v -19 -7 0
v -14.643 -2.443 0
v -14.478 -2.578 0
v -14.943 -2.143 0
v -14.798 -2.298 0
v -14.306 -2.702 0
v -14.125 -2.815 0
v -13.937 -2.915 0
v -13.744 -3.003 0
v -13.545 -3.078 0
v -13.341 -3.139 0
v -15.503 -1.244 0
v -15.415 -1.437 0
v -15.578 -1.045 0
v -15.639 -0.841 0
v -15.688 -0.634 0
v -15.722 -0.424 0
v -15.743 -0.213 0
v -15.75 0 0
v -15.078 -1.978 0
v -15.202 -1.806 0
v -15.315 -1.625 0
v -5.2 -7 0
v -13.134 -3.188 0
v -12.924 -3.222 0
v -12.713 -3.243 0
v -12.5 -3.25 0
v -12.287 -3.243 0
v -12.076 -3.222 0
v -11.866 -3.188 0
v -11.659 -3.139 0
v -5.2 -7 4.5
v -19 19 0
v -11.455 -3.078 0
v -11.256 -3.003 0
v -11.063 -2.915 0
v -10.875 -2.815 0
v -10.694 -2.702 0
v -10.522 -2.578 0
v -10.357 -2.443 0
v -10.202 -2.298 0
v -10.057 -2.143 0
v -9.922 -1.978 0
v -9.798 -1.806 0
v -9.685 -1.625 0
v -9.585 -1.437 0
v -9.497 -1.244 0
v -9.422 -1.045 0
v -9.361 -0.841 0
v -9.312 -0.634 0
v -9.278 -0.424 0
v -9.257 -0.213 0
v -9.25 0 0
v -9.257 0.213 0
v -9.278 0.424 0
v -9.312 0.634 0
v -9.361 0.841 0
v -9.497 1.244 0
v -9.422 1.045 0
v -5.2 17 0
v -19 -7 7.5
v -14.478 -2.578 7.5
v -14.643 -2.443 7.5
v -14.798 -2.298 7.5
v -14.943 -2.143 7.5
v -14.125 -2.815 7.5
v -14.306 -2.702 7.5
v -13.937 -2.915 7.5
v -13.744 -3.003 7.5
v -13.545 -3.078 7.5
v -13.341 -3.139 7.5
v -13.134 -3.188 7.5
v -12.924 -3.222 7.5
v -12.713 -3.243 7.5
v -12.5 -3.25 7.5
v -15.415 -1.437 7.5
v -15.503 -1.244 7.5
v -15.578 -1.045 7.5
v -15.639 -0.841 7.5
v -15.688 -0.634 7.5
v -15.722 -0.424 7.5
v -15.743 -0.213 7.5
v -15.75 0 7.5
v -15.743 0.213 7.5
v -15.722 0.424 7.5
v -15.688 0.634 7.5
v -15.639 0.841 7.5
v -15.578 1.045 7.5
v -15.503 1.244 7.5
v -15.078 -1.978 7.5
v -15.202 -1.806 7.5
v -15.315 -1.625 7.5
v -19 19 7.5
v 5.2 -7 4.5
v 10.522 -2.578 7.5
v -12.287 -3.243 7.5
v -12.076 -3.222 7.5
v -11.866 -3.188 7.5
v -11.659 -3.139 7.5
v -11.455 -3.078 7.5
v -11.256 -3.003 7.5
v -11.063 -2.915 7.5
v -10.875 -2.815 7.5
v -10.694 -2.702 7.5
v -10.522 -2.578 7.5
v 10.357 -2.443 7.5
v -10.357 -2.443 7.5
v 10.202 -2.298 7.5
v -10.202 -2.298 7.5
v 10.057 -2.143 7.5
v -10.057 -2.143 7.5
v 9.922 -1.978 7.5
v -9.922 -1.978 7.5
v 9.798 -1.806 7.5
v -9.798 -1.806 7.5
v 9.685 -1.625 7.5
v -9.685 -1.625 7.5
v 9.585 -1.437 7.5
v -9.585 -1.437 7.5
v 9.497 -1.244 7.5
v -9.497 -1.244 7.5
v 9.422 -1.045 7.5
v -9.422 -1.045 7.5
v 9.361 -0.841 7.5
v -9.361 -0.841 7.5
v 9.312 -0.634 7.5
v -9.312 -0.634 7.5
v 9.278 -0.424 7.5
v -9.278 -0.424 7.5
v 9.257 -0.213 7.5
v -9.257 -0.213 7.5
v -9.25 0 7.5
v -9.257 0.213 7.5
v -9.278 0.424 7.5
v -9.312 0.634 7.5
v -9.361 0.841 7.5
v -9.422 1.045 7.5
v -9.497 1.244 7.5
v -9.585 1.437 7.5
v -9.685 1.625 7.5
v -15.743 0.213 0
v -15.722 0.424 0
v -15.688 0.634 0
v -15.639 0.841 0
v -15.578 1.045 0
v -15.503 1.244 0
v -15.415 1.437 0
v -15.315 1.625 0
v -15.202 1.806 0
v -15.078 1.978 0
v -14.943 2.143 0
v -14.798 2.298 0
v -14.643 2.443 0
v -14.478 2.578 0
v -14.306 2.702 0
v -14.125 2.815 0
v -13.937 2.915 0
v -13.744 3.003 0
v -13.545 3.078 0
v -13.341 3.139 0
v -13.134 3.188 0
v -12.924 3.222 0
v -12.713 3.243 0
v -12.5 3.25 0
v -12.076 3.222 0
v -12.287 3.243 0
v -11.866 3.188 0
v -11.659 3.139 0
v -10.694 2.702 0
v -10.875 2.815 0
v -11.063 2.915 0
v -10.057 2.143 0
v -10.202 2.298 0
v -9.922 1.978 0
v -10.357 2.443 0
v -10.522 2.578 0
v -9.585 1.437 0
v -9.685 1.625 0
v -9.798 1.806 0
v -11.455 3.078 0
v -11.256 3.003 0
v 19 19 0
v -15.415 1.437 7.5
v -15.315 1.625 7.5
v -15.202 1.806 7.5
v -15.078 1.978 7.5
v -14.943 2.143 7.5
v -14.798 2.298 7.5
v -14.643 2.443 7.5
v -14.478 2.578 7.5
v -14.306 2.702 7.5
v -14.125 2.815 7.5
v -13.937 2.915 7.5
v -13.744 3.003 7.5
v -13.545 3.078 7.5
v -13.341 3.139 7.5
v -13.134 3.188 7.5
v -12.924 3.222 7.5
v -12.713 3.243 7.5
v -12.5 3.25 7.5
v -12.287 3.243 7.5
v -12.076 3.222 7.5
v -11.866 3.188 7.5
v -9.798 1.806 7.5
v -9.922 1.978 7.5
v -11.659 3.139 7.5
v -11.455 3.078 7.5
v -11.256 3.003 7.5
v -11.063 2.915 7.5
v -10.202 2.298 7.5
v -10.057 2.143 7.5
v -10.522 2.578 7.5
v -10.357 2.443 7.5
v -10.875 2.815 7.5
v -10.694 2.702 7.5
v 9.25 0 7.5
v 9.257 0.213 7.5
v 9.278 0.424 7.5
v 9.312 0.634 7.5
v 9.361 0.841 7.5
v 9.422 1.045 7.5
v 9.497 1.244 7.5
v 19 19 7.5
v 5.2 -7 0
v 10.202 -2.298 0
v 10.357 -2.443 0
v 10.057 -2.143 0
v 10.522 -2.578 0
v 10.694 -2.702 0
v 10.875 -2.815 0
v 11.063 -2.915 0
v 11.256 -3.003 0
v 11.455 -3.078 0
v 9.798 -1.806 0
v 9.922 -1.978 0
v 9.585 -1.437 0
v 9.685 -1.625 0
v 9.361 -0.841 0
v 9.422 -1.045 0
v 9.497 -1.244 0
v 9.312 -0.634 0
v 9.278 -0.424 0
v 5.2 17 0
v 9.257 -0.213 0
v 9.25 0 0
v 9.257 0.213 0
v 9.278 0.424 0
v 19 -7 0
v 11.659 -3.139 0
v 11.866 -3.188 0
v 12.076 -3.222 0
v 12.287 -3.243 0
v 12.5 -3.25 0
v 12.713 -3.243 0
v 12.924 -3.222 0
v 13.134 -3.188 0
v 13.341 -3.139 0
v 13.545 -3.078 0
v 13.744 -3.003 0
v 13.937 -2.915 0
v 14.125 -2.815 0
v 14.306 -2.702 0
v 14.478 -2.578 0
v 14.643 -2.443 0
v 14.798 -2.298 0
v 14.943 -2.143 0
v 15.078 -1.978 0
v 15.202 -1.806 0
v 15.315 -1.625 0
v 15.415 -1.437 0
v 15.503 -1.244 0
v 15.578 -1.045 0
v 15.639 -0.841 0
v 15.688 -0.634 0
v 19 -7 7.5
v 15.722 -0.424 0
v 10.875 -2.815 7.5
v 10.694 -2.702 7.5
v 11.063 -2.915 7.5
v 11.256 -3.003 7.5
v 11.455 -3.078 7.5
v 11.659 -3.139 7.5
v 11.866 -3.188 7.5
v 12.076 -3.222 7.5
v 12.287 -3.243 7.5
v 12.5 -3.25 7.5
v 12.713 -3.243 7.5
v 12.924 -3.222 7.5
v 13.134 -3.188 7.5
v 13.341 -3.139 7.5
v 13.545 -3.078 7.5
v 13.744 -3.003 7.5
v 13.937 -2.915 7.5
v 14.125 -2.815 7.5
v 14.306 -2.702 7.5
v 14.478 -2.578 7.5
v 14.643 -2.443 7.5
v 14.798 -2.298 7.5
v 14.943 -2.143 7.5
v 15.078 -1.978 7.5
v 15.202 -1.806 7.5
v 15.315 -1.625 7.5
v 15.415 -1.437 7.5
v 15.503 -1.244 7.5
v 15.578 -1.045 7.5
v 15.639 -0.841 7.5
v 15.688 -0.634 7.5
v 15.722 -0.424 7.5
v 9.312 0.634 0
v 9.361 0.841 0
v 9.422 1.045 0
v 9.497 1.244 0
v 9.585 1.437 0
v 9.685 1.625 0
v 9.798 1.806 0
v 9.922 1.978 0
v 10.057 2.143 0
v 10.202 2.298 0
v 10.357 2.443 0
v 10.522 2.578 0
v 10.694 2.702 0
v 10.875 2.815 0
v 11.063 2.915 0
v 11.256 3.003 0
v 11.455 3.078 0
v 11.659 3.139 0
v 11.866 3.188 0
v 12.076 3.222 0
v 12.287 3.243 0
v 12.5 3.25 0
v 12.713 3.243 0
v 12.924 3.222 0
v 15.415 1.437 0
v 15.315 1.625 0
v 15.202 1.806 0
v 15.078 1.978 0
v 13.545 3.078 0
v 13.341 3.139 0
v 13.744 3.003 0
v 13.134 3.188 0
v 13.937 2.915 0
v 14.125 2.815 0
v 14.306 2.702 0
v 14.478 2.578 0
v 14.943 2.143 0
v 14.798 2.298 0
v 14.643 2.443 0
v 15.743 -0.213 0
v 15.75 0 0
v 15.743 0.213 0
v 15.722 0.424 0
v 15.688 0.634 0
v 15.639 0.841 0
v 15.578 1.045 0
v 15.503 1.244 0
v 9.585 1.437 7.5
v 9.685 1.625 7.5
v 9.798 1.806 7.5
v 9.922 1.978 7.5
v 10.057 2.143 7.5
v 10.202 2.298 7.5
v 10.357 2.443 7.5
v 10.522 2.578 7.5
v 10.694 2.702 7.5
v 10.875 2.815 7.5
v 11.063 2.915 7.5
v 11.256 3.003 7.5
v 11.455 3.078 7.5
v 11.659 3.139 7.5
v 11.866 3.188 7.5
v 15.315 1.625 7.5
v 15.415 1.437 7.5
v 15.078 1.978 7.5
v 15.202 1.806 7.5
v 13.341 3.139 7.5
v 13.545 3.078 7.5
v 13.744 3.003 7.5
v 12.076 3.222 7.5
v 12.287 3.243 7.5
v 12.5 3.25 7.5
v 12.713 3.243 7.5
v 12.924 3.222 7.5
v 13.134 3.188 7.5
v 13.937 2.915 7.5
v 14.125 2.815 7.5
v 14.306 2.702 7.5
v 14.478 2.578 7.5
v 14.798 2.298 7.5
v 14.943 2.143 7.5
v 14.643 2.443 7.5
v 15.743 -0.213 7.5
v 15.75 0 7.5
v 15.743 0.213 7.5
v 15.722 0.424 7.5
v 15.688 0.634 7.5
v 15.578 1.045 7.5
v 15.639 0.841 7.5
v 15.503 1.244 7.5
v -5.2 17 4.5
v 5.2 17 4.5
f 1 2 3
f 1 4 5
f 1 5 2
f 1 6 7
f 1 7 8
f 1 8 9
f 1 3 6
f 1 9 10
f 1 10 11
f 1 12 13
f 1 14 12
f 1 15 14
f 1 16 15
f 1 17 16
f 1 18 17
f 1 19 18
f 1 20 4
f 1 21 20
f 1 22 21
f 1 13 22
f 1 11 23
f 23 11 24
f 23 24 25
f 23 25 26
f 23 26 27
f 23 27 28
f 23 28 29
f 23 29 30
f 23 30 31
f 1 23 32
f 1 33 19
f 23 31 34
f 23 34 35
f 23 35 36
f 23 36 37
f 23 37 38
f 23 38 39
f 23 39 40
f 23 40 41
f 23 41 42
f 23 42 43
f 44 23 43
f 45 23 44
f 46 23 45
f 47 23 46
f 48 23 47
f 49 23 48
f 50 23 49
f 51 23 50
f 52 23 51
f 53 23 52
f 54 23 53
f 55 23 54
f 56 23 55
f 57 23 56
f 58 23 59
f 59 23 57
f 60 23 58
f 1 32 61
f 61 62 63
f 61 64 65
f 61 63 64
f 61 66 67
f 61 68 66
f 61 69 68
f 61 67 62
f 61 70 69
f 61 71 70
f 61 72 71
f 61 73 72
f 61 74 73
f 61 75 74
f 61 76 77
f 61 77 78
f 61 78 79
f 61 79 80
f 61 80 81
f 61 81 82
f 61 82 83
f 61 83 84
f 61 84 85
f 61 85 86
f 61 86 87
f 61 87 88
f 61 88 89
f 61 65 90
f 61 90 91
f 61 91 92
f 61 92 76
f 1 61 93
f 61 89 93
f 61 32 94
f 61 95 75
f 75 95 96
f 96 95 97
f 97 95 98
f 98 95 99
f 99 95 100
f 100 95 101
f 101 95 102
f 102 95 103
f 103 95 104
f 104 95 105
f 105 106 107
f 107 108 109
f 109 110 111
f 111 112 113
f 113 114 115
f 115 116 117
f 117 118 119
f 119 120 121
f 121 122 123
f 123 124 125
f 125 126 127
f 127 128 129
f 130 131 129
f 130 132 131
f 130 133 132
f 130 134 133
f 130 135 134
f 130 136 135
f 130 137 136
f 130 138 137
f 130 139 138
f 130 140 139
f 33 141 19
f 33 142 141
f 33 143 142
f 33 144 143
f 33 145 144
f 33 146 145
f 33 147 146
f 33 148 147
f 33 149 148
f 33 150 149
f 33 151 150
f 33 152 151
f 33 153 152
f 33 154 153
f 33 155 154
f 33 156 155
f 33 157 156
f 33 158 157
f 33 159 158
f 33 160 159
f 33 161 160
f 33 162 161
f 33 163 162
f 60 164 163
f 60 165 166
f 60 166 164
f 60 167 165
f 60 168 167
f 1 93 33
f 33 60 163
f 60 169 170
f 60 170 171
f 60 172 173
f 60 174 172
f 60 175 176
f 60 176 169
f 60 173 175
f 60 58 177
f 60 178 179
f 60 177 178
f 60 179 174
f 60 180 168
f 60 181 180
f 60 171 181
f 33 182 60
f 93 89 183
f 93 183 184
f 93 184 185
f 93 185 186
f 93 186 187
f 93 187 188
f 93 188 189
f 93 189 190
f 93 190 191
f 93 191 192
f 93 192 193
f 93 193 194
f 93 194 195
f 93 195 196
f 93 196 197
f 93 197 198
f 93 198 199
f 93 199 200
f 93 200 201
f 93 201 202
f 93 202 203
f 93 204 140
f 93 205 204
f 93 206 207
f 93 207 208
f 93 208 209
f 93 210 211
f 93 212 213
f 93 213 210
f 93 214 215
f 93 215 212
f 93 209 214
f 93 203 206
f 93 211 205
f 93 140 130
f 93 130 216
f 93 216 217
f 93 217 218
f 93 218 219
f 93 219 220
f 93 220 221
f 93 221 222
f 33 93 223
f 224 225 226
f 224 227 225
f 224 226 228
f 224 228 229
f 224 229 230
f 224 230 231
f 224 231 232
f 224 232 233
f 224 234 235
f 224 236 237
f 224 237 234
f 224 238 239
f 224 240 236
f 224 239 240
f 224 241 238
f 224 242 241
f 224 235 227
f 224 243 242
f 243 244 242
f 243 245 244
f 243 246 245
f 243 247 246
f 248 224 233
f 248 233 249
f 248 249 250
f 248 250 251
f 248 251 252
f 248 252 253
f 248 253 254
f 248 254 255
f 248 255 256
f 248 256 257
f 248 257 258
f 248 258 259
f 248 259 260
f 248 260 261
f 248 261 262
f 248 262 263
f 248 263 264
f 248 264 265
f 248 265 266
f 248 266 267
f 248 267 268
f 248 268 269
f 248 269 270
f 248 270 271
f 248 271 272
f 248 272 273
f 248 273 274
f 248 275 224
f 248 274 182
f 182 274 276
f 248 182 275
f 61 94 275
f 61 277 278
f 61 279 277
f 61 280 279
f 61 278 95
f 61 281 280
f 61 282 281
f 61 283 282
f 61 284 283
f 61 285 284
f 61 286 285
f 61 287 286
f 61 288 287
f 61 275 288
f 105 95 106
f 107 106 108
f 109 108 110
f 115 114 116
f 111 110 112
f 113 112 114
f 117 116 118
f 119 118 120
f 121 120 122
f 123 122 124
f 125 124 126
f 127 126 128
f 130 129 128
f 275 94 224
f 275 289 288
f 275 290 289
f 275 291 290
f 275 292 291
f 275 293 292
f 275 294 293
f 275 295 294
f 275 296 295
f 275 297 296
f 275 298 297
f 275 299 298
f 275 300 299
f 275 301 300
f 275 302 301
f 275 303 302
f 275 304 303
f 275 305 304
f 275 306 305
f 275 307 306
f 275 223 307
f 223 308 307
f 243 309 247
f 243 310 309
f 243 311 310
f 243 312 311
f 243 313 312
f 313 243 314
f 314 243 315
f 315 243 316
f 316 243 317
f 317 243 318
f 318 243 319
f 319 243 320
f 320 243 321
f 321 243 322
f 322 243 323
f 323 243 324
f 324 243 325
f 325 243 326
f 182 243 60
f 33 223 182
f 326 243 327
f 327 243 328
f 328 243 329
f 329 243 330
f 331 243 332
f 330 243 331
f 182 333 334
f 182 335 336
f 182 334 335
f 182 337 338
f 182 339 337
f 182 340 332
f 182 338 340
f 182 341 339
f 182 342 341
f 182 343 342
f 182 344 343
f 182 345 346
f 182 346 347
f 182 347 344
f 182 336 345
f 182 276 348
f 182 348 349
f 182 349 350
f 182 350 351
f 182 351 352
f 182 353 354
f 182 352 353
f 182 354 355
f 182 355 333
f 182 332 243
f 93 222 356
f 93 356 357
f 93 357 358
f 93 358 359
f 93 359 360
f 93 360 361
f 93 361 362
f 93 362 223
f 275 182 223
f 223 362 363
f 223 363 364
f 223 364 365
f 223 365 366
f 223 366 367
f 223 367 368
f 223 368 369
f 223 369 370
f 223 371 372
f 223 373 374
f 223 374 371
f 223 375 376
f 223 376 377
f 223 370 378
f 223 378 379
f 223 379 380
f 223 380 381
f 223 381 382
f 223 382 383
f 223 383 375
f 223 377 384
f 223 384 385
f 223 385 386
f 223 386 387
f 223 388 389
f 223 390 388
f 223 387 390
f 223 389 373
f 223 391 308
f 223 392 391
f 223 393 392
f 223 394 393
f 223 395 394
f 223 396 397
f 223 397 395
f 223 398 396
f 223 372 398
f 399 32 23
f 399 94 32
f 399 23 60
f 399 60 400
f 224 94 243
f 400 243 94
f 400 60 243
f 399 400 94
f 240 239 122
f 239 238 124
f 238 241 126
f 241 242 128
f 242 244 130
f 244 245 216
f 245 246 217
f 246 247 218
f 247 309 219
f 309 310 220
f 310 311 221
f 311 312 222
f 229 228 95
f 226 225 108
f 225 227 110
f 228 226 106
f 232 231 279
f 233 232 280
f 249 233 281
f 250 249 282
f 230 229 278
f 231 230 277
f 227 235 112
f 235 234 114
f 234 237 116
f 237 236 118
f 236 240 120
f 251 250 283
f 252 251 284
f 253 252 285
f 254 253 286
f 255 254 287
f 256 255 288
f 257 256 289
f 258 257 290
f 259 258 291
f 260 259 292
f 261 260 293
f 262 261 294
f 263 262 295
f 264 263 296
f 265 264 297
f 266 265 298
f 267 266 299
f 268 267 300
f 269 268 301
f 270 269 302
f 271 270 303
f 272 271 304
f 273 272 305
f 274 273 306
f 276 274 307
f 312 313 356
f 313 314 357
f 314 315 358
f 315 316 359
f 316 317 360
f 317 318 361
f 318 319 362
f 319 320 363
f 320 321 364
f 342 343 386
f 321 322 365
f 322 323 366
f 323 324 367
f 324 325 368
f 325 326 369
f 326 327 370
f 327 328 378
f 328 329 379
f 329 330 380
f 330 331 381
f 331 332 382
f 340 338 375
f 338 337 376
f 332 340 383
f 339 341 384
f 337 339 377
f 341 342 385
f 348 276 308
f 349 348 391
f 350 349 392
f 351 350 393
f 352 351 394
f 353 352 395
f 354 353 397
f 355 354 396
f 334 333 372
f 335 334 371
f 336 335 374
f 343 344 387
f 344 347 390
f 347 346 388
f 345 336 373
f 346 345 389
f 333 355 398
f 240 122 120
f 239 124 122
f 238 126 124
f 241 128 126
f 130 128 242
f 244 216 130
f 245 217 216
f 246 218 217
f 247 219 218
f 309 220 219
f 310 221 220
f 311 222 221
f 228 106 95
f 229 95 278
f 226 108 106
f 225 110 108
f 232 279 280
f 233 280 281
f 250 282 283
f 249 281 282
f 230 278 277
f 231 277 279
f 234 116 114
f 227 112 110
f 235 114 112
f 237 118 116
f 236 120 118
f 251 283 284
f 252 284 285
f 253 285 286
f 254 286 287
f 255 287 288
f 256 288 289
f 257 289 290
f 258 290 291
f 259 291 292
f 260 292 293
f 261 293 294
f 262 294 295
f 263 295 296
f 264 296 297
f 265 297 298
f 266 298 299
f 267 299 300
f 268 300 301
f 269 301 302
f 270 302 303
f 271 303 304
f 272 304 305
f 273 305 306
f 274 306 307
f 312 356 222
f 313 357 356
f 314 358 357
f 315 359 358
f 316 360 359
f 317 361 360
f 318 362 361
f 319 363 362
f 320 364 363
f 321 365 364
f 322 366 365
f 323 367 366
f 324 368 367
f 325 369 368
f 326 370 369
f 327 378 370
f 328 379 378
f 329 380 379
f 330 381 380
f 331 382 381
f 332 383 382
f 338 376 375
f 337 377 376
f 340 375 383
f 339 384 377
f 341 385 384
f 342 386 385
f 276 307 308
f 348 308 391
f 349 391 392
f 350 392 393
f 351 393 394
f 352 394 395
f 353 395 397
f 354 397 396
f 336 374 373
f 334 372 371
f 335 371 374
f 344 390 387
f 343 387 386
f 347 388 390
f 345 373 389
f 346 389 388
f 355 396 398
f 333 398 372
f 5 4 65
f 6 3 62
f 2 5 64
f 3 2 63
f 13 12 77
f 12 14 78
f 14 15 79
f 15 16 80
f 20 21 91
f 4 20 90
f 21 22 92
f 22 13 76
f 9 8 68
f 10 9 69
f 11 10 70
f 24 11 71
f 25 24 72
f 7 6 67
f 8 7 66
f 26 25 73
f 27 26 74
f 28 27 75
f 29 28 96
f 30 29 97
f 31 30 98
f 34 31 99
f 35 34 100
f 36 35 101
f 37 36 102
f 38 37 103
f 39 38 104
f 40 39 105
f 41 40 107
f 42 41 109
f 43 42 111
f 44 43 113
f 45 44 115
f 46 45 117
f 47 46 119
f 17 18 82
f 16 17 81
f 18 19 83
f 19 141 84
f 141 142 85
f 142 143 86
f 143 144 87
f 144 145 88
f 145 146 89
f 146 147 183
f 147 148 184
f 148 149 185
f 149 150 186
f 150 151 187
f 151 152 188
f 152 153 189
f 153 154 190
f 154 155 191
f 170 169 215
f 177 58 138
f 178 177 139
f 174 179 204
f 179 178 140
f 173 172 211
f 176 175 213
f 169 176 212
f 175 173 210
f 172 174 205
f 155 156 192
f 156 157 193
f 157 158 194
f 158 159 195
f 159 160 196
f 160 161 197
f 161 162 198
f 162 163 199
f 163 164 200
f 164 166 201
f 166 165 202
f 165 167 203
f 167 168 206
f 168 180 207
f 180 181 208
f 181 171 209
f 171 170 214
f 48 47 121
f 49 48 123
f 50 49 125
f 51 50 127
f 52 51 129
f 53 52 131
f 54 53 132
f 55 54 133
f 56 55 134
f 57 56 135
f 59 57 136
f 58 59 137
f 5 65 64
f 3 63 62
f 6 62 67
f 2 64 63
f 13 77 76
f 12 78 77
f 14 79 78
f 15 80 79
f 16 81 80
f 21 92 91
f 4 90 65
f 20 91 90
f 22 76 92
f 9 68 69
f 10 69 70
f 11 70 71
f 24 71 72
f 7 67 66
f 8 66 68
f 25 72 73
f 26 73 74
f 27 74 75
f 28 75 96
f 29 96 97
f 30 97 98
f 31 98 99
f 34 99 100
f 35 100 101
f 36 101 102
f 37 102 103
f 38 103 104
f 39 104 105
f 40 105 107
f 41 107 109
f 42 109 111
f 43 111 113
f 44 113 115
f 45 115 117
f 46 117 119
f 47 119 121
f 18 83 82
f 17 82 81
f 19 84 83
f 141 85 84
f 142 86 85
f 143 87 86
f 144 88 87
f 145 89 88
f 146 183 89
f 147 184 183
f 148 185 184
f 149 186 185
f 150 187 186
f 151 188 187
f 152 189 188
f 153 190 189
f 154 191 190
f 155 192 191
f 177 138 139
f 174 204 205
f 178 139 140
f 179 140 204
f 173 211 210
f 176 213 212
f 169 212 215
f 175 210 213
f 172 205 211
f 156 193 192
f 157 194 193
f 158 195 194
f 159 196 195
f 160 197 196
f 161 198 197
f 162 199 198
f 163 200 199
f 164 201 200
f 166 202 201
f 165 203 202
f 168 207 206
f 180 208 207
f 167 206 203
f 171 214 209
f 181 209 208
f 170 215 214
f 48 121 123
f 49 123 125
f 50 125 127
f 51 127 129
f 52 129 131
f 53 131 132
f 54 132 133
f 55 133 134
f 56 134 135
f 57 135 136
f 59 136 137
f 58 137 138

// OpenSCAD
// MOS 管压块 mos_clamp_16x10x4p5 — 参考 saddle_clamp_sq6 (槽 + 2×M6 @ 25)
// 压 TO-220 MOS (长16 宽10 高4.5) 到 M6 网格板 (节距 25); MOS 长度沿 Y 推进底部盲槽
// 平顶: 孔距 25 - 大扁头 Φ12.5 = 12.5 放不下 10 宽 MOS + 两侧壁, 故脚与顶齐平, 头坐顶面
// +Y 端挡板厚 2 (全长全高); 槽深 24 (用户加宽 1cm, 原 14), 开口面与孔位不动
// 过盈 0 (用户 2026-09-15 选定: 两脚贴板, 拧到底也压不坏封装); 垫导热垫时改 pad_t / preload

mos_l = 16; mos_w = 10; mos_h = 4.5;   // MOS 包络
side_clr = 0.2;   // 槽宽单侧间隙
preload  = 0;     // 过盈 = (MOS + 垫) 叠高 - 槽高; 垫导热垫时取垫允许的压缩量
pad_t    = 0;     // MOS 下导热硅胶垫厚 (待定)
t_top    = 3;     // 槽顶厚
pitch    = 25;    // 网格孔距
hole_d   = 6.5;   // M6 通孔
end_m    = 6.5;   // 孔心到 X 端面 (>= 头半径 6.25)
hole_y_open = 7;  // 孔心到开口面
ch_d     = 24;    // 槽深 (开口面 -> 挡板内面)
baffle_t = 2;     // +Y 端挡板厚

ch_w   = mos_w + 2*side_clr;   // 10.4
ch_h   = mos_h + pad_t - preload;   // 4.5
h      = ch_h + t_top;         // 7.5
hx     = pitch/2;              // 12.5
half_l = hx + end_m;           // 19
y_open = -hole_y_open;         // -7 开口面 (孔心在 y=0)

module mos_clamp_16x10x4p5() {
    difference() {
        translate([-half_l, y_open, 0]) cube([2*half_l, ch_d + baffle_t, h]);
        // 底部盲槽: 只从 -Y 端开口, 止于挡板内面 y = y_open + ch_d
        translate([-ch_w/2, y_open - 1, -1]) cube([ch_w, ch_d + 1, ch_h + 1]);
        // 2 × M6 通孔
        for (sx = [-1, 1])
            translate([sx*hx, 0, -1]) cylinder(h = h + 2, d = hole_d, $fn = 96);
    }
}

mos_clamp_16x10x4p5();
